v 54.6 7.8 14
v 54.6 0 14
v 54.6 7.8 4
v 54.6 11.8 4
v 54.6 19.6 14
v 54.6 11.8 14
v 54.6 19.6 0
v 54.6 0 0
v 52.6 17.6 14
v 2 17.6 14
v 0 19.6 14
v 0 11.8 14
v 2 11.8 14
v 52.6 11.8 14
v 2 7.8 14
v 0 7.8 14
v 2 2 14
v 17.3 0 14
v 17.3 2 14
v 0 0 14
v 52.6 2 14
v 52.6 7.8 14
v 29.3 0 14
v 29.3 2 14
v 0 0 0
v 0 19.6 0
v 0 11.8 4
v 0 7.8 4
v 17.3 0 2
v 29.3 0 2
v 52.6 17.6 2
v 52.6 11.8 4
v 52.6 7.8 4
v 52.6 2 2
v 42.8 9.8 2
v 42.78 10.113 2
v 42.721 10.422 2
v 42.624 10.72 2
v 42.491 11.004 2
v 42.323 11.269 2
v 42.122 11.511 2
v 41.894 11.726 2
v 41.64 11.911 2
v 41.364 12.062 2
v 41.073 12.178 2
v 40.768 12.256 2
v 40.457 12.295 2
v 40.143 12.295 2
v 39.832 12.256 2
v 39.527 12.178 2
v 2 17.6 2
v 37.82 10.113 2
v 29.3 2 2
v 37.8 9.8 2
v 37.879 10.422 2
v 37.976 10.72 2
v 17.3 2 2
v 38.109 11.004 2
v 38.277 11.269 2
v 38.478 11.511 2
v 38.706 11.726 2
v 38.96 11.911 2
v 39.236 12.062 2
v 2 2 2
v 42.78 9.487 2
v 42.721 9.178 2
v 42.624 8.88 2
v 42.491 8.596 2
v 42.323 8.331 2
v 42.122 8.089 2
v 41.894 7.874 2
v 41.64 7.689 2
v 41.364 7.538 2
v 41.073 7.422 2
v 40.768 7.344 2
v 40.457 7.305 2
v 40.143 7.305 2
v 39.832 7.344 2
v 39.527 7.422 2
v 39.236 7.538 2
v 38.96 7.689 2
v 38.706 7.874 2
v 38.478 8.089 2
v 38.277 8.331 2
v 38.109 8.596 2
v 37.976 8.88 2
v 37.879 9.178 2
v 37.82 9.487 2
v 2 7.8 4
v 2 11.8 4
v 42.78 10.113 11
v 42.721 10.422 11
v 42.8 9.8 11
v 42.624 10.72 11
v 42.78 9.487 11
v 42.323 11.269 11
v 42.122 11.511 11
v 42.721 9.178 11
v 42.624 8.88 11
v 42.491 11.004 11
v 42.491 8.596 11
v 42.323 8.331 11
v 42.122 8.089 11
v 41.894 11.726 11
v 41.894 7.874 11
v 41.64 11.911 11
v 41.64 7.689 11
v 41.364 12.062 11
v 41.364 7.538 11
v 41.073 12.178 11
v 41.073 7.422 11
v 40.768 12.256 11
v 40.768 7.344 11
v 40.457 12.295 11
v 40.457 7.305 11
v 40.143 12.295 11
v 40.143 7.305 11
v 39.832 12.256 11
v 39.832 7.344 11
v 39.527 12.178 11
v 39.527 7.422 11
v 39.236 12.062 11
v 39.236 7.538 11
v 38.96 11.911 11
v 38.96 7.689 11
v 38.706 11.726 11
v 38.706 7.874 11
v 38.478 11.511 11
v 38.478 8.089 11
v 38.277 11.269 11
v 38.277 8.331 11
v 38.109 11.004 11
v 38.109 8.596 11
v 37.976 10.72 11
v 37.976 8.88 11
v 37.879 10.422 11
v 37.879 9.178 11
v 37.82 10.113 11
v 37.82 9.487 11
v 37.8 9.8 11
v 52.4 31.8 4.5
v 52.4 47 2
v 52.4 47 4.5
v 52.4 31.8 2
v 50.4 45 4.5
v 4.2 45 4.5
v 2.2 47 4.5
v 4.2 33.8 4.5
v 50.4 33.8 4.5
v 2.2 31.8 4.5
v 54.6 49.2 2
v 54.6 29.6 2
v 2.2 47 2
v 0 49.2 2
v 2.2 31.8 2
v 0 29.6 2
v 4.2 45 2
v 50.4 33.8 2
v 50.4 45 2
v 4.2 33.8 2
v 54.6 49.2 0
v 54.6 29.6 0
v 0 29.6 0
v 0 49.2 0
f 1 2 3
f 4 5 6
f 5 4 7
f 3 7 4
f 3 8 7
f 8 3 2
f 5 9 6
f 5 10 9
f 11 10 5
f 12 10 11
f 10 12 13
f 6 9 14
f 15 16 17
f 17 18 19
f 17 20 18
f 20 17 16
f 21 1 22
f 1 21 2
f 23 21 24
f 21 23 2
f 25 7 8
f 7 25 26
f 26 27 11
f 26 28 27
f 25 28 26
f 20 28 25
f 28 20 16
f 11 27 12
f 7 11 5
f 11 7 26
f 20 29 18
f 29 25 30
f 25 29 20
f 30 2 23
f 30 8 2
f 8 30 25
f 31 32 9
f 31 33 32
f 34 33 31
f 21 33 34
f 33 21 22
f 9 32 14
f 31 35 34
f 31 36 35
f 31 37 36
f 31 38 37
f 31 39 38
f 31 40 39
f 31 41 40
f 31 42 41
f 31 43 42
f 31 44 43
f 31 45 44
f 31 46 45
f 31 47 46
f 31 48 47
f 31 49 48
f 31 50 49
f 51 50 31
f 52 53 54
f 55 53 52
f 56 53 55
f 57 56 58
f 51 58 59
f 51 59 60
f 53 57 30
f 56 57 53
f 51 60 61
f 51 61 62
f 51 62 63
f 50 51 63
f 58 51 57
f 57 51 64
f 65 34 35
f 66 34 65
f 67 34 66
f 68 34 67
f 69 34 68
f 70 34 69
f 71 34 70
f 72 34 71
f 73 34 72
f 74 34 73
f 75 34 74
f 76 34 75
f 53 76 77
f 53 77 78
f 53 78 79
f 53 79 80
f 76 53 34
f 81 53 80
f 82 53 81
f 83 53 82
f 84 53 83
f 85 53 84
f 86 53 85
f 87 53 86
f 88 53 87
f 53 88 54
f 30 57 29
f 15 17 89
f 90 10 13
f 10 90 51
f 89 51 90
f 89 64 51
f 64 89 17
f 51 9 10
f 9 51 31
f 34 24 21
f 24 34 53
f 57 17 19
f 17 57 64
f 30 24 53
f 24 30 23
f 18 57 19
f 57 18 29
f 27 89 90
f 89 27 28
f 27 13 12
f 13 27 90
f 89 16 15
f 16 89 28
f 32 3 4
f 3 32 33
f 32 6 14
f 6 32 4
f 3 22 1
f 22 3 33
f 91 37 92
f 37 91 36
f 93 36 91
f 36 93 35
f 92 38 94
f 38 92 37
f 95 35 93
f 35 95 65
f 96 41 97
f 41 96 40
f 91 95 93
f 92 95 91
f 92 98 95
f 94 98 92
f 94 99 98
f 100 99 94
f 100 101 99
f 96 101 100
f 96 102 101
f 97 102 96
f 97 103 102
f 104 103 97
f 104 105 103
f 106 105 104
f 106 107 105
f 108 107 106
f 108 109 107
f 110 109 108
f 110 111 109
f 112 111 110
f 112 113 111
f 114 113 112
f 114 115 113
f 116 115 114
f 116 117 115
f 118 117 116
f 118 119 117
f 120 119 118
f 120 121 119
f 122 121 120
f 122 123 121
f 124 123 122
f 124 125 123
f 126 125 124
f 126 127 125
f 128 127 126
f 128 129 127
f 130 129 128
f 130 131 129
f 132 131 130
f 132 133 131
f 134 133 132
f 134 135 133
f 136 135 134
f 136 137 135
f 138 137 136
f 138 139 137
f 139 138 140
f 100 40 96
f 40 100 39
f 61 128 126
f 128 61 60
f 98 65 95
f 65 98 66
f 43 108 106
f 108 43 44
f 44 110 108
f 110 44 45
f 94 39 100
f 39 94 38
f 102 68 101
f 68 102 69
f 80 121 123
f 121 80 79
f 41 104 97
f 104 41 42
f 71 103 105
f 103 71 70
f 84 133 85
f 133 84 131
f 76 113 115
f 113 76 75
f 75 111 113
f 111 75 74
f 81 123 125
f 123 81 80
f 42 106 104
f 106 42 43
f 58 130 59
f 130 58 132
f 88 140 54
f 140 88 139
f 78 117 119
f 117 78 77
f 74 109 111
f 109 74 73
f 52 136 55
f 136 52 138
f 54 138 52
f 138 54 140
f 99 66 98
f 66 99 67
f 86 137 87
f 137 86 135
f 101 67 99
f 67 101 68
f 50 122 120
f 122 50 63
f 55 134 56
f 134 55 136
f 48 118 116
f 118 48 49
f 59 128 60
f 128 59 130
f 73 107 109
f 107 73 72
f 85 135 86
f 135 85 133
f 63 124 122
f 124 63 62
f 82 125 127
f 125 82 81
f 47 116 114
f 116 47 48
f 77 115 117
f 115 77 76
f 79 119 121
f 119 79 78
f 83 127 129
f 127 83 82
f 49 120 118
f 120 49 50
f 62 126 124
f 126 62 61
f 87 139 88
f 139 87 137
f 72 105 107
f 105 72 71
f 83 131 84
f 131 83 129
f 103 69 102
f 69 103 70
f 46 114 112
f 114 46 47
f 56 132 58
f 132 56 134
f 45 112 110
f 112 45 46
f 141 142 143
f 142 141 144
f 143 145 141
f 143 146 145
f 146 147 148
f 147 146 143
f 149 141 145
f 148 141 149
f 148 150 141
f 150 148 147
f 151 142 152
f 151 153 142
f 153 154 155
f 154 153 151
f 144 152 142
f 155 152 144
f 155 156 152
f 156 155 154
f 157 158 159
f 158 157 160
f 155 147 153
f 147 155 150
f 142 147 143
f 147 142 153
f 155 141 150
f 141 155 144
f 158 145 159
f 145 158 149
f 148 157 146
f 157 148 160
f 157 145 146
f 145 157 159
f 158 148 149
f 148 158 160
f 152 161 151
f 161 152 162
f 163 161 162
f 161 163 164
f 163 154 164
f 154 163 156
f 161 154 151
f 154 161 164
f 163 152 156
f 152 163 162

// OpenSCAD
/* 
 * Switch Box and Lid - Single Post
 * Based on dimensions from image_b59a97.jpg
 */

// --- PARAMETERS ---

// PCB Dimensions
pcb_length = 50;
pcb_width = 15;
tolerance = 0.6; // Extra breathing room for the PCB

// Box Dimensions
box_internal_depth = 12;
wall_thickness = 2;

// Component Placement & Dimensions
switch_width = 12;
switch_depth = 12; // Distance down from the top edge
post_diameter = 5;
hole_to_edge_gap = 2;
post_to_switch_dist = 11; // Distance from switch cut-out edge to post center
post_height = box_internal_depth - 3; // Height of the standoff
switch_offset = 15;

// Wire Notch Dimensions
wire_notch_width = 4;
wire_notch_depth = 10;

// Lid Parameters
lid_thickness = 2;
lid_lip_height = 2.5;
lid_clearance = 0.2; // Gap for friction fit

// Smoothness
$fn = 50;

// --- DERIVED MEASUREMENTS ---
inner_l = pcb_length + tolerance;
inner_w = pcb_width + tolerance;
outer_l = inner_l + (2 * wall_thickness);
outer_w = inner_w + (2 * wall_thickness);
outer_h = box_internal_depth + wall_thickness;

// Layout Math
pcb_start_x = wall_thickness + (tolerance / 2);
switch_pos_x = pcb_start_x + switch_offset;
post_pos_x = switch_pos_x + switch_width + post_to_switch_dist;

// --- RENDER ---
box();
translate([0, outer_w + 10, 0]) lid();

// --- MODULES ---

module box() {
    difference() {
        // Main solid box
        cube([outer_l, outer_w, outer_h]);
        
        // Hollow interior
        translate([wall_thickness, wall_thickness, wall_thickness])
            cube([inner_l, inner_w, box_internal_depth + 1]);
            
        // Slide switch cutout (Offset based on post distance)
        translate([switch_pos_x, 0, outer_h - switch_depth])
            cube([switch_width, wall_thickness + 1, switch_depth + 1]);
            
        // Wire notch 1 (Left short side)
        translate([-1, (outer_w - wire_notch_width) / 2, outer_h - wire_notch_depth])
            cube([wall_thickness + 2, wire_notch_width, wire_notch_depth + 1]);
            
        // Wire notch 2 (Right short side)
        translate([outer_l - wall_thickness - 1, (outer_w - wire_notch_width) / 2, outer_h - wire_notch_depth])
            cube([wall_thickness + 2, wire_notch_width, wire_notch_depth + 1]);
    }
    
    // Single Mounting Post
    post_y_center = outer_w / 2;
    
    translate([post_pos_x, post_y_center, wall_thickness])
        cylinder(h = post_height, d = post_diameter);
}

module lid() {
    // Flat top cover
    cube([outer_l, outer_w, lid_thickness]);
    
    // Friction-fit inner lip
    lip_length = inner_l - (2 * lid_clearance);
    lip_width = inner_w - (2 * lid_clearance);
    
    translate([wall_thickness + lid_clearance, wall_thickness + lid_clearance, lid_thickness])
        difference() {
            // Main lip block
            cube([lip_length, lip_width, lid_lip_height]);
            // Hollow out the lip to save plastic and allow slight flex for snapping
            translate([wall_thickness, wall_thickness, -1])
                cube([lip_length - (2 * wall_thickness), lip_width - (2 * wall_thickness), lid_lip_height + 2]);
        }
}
